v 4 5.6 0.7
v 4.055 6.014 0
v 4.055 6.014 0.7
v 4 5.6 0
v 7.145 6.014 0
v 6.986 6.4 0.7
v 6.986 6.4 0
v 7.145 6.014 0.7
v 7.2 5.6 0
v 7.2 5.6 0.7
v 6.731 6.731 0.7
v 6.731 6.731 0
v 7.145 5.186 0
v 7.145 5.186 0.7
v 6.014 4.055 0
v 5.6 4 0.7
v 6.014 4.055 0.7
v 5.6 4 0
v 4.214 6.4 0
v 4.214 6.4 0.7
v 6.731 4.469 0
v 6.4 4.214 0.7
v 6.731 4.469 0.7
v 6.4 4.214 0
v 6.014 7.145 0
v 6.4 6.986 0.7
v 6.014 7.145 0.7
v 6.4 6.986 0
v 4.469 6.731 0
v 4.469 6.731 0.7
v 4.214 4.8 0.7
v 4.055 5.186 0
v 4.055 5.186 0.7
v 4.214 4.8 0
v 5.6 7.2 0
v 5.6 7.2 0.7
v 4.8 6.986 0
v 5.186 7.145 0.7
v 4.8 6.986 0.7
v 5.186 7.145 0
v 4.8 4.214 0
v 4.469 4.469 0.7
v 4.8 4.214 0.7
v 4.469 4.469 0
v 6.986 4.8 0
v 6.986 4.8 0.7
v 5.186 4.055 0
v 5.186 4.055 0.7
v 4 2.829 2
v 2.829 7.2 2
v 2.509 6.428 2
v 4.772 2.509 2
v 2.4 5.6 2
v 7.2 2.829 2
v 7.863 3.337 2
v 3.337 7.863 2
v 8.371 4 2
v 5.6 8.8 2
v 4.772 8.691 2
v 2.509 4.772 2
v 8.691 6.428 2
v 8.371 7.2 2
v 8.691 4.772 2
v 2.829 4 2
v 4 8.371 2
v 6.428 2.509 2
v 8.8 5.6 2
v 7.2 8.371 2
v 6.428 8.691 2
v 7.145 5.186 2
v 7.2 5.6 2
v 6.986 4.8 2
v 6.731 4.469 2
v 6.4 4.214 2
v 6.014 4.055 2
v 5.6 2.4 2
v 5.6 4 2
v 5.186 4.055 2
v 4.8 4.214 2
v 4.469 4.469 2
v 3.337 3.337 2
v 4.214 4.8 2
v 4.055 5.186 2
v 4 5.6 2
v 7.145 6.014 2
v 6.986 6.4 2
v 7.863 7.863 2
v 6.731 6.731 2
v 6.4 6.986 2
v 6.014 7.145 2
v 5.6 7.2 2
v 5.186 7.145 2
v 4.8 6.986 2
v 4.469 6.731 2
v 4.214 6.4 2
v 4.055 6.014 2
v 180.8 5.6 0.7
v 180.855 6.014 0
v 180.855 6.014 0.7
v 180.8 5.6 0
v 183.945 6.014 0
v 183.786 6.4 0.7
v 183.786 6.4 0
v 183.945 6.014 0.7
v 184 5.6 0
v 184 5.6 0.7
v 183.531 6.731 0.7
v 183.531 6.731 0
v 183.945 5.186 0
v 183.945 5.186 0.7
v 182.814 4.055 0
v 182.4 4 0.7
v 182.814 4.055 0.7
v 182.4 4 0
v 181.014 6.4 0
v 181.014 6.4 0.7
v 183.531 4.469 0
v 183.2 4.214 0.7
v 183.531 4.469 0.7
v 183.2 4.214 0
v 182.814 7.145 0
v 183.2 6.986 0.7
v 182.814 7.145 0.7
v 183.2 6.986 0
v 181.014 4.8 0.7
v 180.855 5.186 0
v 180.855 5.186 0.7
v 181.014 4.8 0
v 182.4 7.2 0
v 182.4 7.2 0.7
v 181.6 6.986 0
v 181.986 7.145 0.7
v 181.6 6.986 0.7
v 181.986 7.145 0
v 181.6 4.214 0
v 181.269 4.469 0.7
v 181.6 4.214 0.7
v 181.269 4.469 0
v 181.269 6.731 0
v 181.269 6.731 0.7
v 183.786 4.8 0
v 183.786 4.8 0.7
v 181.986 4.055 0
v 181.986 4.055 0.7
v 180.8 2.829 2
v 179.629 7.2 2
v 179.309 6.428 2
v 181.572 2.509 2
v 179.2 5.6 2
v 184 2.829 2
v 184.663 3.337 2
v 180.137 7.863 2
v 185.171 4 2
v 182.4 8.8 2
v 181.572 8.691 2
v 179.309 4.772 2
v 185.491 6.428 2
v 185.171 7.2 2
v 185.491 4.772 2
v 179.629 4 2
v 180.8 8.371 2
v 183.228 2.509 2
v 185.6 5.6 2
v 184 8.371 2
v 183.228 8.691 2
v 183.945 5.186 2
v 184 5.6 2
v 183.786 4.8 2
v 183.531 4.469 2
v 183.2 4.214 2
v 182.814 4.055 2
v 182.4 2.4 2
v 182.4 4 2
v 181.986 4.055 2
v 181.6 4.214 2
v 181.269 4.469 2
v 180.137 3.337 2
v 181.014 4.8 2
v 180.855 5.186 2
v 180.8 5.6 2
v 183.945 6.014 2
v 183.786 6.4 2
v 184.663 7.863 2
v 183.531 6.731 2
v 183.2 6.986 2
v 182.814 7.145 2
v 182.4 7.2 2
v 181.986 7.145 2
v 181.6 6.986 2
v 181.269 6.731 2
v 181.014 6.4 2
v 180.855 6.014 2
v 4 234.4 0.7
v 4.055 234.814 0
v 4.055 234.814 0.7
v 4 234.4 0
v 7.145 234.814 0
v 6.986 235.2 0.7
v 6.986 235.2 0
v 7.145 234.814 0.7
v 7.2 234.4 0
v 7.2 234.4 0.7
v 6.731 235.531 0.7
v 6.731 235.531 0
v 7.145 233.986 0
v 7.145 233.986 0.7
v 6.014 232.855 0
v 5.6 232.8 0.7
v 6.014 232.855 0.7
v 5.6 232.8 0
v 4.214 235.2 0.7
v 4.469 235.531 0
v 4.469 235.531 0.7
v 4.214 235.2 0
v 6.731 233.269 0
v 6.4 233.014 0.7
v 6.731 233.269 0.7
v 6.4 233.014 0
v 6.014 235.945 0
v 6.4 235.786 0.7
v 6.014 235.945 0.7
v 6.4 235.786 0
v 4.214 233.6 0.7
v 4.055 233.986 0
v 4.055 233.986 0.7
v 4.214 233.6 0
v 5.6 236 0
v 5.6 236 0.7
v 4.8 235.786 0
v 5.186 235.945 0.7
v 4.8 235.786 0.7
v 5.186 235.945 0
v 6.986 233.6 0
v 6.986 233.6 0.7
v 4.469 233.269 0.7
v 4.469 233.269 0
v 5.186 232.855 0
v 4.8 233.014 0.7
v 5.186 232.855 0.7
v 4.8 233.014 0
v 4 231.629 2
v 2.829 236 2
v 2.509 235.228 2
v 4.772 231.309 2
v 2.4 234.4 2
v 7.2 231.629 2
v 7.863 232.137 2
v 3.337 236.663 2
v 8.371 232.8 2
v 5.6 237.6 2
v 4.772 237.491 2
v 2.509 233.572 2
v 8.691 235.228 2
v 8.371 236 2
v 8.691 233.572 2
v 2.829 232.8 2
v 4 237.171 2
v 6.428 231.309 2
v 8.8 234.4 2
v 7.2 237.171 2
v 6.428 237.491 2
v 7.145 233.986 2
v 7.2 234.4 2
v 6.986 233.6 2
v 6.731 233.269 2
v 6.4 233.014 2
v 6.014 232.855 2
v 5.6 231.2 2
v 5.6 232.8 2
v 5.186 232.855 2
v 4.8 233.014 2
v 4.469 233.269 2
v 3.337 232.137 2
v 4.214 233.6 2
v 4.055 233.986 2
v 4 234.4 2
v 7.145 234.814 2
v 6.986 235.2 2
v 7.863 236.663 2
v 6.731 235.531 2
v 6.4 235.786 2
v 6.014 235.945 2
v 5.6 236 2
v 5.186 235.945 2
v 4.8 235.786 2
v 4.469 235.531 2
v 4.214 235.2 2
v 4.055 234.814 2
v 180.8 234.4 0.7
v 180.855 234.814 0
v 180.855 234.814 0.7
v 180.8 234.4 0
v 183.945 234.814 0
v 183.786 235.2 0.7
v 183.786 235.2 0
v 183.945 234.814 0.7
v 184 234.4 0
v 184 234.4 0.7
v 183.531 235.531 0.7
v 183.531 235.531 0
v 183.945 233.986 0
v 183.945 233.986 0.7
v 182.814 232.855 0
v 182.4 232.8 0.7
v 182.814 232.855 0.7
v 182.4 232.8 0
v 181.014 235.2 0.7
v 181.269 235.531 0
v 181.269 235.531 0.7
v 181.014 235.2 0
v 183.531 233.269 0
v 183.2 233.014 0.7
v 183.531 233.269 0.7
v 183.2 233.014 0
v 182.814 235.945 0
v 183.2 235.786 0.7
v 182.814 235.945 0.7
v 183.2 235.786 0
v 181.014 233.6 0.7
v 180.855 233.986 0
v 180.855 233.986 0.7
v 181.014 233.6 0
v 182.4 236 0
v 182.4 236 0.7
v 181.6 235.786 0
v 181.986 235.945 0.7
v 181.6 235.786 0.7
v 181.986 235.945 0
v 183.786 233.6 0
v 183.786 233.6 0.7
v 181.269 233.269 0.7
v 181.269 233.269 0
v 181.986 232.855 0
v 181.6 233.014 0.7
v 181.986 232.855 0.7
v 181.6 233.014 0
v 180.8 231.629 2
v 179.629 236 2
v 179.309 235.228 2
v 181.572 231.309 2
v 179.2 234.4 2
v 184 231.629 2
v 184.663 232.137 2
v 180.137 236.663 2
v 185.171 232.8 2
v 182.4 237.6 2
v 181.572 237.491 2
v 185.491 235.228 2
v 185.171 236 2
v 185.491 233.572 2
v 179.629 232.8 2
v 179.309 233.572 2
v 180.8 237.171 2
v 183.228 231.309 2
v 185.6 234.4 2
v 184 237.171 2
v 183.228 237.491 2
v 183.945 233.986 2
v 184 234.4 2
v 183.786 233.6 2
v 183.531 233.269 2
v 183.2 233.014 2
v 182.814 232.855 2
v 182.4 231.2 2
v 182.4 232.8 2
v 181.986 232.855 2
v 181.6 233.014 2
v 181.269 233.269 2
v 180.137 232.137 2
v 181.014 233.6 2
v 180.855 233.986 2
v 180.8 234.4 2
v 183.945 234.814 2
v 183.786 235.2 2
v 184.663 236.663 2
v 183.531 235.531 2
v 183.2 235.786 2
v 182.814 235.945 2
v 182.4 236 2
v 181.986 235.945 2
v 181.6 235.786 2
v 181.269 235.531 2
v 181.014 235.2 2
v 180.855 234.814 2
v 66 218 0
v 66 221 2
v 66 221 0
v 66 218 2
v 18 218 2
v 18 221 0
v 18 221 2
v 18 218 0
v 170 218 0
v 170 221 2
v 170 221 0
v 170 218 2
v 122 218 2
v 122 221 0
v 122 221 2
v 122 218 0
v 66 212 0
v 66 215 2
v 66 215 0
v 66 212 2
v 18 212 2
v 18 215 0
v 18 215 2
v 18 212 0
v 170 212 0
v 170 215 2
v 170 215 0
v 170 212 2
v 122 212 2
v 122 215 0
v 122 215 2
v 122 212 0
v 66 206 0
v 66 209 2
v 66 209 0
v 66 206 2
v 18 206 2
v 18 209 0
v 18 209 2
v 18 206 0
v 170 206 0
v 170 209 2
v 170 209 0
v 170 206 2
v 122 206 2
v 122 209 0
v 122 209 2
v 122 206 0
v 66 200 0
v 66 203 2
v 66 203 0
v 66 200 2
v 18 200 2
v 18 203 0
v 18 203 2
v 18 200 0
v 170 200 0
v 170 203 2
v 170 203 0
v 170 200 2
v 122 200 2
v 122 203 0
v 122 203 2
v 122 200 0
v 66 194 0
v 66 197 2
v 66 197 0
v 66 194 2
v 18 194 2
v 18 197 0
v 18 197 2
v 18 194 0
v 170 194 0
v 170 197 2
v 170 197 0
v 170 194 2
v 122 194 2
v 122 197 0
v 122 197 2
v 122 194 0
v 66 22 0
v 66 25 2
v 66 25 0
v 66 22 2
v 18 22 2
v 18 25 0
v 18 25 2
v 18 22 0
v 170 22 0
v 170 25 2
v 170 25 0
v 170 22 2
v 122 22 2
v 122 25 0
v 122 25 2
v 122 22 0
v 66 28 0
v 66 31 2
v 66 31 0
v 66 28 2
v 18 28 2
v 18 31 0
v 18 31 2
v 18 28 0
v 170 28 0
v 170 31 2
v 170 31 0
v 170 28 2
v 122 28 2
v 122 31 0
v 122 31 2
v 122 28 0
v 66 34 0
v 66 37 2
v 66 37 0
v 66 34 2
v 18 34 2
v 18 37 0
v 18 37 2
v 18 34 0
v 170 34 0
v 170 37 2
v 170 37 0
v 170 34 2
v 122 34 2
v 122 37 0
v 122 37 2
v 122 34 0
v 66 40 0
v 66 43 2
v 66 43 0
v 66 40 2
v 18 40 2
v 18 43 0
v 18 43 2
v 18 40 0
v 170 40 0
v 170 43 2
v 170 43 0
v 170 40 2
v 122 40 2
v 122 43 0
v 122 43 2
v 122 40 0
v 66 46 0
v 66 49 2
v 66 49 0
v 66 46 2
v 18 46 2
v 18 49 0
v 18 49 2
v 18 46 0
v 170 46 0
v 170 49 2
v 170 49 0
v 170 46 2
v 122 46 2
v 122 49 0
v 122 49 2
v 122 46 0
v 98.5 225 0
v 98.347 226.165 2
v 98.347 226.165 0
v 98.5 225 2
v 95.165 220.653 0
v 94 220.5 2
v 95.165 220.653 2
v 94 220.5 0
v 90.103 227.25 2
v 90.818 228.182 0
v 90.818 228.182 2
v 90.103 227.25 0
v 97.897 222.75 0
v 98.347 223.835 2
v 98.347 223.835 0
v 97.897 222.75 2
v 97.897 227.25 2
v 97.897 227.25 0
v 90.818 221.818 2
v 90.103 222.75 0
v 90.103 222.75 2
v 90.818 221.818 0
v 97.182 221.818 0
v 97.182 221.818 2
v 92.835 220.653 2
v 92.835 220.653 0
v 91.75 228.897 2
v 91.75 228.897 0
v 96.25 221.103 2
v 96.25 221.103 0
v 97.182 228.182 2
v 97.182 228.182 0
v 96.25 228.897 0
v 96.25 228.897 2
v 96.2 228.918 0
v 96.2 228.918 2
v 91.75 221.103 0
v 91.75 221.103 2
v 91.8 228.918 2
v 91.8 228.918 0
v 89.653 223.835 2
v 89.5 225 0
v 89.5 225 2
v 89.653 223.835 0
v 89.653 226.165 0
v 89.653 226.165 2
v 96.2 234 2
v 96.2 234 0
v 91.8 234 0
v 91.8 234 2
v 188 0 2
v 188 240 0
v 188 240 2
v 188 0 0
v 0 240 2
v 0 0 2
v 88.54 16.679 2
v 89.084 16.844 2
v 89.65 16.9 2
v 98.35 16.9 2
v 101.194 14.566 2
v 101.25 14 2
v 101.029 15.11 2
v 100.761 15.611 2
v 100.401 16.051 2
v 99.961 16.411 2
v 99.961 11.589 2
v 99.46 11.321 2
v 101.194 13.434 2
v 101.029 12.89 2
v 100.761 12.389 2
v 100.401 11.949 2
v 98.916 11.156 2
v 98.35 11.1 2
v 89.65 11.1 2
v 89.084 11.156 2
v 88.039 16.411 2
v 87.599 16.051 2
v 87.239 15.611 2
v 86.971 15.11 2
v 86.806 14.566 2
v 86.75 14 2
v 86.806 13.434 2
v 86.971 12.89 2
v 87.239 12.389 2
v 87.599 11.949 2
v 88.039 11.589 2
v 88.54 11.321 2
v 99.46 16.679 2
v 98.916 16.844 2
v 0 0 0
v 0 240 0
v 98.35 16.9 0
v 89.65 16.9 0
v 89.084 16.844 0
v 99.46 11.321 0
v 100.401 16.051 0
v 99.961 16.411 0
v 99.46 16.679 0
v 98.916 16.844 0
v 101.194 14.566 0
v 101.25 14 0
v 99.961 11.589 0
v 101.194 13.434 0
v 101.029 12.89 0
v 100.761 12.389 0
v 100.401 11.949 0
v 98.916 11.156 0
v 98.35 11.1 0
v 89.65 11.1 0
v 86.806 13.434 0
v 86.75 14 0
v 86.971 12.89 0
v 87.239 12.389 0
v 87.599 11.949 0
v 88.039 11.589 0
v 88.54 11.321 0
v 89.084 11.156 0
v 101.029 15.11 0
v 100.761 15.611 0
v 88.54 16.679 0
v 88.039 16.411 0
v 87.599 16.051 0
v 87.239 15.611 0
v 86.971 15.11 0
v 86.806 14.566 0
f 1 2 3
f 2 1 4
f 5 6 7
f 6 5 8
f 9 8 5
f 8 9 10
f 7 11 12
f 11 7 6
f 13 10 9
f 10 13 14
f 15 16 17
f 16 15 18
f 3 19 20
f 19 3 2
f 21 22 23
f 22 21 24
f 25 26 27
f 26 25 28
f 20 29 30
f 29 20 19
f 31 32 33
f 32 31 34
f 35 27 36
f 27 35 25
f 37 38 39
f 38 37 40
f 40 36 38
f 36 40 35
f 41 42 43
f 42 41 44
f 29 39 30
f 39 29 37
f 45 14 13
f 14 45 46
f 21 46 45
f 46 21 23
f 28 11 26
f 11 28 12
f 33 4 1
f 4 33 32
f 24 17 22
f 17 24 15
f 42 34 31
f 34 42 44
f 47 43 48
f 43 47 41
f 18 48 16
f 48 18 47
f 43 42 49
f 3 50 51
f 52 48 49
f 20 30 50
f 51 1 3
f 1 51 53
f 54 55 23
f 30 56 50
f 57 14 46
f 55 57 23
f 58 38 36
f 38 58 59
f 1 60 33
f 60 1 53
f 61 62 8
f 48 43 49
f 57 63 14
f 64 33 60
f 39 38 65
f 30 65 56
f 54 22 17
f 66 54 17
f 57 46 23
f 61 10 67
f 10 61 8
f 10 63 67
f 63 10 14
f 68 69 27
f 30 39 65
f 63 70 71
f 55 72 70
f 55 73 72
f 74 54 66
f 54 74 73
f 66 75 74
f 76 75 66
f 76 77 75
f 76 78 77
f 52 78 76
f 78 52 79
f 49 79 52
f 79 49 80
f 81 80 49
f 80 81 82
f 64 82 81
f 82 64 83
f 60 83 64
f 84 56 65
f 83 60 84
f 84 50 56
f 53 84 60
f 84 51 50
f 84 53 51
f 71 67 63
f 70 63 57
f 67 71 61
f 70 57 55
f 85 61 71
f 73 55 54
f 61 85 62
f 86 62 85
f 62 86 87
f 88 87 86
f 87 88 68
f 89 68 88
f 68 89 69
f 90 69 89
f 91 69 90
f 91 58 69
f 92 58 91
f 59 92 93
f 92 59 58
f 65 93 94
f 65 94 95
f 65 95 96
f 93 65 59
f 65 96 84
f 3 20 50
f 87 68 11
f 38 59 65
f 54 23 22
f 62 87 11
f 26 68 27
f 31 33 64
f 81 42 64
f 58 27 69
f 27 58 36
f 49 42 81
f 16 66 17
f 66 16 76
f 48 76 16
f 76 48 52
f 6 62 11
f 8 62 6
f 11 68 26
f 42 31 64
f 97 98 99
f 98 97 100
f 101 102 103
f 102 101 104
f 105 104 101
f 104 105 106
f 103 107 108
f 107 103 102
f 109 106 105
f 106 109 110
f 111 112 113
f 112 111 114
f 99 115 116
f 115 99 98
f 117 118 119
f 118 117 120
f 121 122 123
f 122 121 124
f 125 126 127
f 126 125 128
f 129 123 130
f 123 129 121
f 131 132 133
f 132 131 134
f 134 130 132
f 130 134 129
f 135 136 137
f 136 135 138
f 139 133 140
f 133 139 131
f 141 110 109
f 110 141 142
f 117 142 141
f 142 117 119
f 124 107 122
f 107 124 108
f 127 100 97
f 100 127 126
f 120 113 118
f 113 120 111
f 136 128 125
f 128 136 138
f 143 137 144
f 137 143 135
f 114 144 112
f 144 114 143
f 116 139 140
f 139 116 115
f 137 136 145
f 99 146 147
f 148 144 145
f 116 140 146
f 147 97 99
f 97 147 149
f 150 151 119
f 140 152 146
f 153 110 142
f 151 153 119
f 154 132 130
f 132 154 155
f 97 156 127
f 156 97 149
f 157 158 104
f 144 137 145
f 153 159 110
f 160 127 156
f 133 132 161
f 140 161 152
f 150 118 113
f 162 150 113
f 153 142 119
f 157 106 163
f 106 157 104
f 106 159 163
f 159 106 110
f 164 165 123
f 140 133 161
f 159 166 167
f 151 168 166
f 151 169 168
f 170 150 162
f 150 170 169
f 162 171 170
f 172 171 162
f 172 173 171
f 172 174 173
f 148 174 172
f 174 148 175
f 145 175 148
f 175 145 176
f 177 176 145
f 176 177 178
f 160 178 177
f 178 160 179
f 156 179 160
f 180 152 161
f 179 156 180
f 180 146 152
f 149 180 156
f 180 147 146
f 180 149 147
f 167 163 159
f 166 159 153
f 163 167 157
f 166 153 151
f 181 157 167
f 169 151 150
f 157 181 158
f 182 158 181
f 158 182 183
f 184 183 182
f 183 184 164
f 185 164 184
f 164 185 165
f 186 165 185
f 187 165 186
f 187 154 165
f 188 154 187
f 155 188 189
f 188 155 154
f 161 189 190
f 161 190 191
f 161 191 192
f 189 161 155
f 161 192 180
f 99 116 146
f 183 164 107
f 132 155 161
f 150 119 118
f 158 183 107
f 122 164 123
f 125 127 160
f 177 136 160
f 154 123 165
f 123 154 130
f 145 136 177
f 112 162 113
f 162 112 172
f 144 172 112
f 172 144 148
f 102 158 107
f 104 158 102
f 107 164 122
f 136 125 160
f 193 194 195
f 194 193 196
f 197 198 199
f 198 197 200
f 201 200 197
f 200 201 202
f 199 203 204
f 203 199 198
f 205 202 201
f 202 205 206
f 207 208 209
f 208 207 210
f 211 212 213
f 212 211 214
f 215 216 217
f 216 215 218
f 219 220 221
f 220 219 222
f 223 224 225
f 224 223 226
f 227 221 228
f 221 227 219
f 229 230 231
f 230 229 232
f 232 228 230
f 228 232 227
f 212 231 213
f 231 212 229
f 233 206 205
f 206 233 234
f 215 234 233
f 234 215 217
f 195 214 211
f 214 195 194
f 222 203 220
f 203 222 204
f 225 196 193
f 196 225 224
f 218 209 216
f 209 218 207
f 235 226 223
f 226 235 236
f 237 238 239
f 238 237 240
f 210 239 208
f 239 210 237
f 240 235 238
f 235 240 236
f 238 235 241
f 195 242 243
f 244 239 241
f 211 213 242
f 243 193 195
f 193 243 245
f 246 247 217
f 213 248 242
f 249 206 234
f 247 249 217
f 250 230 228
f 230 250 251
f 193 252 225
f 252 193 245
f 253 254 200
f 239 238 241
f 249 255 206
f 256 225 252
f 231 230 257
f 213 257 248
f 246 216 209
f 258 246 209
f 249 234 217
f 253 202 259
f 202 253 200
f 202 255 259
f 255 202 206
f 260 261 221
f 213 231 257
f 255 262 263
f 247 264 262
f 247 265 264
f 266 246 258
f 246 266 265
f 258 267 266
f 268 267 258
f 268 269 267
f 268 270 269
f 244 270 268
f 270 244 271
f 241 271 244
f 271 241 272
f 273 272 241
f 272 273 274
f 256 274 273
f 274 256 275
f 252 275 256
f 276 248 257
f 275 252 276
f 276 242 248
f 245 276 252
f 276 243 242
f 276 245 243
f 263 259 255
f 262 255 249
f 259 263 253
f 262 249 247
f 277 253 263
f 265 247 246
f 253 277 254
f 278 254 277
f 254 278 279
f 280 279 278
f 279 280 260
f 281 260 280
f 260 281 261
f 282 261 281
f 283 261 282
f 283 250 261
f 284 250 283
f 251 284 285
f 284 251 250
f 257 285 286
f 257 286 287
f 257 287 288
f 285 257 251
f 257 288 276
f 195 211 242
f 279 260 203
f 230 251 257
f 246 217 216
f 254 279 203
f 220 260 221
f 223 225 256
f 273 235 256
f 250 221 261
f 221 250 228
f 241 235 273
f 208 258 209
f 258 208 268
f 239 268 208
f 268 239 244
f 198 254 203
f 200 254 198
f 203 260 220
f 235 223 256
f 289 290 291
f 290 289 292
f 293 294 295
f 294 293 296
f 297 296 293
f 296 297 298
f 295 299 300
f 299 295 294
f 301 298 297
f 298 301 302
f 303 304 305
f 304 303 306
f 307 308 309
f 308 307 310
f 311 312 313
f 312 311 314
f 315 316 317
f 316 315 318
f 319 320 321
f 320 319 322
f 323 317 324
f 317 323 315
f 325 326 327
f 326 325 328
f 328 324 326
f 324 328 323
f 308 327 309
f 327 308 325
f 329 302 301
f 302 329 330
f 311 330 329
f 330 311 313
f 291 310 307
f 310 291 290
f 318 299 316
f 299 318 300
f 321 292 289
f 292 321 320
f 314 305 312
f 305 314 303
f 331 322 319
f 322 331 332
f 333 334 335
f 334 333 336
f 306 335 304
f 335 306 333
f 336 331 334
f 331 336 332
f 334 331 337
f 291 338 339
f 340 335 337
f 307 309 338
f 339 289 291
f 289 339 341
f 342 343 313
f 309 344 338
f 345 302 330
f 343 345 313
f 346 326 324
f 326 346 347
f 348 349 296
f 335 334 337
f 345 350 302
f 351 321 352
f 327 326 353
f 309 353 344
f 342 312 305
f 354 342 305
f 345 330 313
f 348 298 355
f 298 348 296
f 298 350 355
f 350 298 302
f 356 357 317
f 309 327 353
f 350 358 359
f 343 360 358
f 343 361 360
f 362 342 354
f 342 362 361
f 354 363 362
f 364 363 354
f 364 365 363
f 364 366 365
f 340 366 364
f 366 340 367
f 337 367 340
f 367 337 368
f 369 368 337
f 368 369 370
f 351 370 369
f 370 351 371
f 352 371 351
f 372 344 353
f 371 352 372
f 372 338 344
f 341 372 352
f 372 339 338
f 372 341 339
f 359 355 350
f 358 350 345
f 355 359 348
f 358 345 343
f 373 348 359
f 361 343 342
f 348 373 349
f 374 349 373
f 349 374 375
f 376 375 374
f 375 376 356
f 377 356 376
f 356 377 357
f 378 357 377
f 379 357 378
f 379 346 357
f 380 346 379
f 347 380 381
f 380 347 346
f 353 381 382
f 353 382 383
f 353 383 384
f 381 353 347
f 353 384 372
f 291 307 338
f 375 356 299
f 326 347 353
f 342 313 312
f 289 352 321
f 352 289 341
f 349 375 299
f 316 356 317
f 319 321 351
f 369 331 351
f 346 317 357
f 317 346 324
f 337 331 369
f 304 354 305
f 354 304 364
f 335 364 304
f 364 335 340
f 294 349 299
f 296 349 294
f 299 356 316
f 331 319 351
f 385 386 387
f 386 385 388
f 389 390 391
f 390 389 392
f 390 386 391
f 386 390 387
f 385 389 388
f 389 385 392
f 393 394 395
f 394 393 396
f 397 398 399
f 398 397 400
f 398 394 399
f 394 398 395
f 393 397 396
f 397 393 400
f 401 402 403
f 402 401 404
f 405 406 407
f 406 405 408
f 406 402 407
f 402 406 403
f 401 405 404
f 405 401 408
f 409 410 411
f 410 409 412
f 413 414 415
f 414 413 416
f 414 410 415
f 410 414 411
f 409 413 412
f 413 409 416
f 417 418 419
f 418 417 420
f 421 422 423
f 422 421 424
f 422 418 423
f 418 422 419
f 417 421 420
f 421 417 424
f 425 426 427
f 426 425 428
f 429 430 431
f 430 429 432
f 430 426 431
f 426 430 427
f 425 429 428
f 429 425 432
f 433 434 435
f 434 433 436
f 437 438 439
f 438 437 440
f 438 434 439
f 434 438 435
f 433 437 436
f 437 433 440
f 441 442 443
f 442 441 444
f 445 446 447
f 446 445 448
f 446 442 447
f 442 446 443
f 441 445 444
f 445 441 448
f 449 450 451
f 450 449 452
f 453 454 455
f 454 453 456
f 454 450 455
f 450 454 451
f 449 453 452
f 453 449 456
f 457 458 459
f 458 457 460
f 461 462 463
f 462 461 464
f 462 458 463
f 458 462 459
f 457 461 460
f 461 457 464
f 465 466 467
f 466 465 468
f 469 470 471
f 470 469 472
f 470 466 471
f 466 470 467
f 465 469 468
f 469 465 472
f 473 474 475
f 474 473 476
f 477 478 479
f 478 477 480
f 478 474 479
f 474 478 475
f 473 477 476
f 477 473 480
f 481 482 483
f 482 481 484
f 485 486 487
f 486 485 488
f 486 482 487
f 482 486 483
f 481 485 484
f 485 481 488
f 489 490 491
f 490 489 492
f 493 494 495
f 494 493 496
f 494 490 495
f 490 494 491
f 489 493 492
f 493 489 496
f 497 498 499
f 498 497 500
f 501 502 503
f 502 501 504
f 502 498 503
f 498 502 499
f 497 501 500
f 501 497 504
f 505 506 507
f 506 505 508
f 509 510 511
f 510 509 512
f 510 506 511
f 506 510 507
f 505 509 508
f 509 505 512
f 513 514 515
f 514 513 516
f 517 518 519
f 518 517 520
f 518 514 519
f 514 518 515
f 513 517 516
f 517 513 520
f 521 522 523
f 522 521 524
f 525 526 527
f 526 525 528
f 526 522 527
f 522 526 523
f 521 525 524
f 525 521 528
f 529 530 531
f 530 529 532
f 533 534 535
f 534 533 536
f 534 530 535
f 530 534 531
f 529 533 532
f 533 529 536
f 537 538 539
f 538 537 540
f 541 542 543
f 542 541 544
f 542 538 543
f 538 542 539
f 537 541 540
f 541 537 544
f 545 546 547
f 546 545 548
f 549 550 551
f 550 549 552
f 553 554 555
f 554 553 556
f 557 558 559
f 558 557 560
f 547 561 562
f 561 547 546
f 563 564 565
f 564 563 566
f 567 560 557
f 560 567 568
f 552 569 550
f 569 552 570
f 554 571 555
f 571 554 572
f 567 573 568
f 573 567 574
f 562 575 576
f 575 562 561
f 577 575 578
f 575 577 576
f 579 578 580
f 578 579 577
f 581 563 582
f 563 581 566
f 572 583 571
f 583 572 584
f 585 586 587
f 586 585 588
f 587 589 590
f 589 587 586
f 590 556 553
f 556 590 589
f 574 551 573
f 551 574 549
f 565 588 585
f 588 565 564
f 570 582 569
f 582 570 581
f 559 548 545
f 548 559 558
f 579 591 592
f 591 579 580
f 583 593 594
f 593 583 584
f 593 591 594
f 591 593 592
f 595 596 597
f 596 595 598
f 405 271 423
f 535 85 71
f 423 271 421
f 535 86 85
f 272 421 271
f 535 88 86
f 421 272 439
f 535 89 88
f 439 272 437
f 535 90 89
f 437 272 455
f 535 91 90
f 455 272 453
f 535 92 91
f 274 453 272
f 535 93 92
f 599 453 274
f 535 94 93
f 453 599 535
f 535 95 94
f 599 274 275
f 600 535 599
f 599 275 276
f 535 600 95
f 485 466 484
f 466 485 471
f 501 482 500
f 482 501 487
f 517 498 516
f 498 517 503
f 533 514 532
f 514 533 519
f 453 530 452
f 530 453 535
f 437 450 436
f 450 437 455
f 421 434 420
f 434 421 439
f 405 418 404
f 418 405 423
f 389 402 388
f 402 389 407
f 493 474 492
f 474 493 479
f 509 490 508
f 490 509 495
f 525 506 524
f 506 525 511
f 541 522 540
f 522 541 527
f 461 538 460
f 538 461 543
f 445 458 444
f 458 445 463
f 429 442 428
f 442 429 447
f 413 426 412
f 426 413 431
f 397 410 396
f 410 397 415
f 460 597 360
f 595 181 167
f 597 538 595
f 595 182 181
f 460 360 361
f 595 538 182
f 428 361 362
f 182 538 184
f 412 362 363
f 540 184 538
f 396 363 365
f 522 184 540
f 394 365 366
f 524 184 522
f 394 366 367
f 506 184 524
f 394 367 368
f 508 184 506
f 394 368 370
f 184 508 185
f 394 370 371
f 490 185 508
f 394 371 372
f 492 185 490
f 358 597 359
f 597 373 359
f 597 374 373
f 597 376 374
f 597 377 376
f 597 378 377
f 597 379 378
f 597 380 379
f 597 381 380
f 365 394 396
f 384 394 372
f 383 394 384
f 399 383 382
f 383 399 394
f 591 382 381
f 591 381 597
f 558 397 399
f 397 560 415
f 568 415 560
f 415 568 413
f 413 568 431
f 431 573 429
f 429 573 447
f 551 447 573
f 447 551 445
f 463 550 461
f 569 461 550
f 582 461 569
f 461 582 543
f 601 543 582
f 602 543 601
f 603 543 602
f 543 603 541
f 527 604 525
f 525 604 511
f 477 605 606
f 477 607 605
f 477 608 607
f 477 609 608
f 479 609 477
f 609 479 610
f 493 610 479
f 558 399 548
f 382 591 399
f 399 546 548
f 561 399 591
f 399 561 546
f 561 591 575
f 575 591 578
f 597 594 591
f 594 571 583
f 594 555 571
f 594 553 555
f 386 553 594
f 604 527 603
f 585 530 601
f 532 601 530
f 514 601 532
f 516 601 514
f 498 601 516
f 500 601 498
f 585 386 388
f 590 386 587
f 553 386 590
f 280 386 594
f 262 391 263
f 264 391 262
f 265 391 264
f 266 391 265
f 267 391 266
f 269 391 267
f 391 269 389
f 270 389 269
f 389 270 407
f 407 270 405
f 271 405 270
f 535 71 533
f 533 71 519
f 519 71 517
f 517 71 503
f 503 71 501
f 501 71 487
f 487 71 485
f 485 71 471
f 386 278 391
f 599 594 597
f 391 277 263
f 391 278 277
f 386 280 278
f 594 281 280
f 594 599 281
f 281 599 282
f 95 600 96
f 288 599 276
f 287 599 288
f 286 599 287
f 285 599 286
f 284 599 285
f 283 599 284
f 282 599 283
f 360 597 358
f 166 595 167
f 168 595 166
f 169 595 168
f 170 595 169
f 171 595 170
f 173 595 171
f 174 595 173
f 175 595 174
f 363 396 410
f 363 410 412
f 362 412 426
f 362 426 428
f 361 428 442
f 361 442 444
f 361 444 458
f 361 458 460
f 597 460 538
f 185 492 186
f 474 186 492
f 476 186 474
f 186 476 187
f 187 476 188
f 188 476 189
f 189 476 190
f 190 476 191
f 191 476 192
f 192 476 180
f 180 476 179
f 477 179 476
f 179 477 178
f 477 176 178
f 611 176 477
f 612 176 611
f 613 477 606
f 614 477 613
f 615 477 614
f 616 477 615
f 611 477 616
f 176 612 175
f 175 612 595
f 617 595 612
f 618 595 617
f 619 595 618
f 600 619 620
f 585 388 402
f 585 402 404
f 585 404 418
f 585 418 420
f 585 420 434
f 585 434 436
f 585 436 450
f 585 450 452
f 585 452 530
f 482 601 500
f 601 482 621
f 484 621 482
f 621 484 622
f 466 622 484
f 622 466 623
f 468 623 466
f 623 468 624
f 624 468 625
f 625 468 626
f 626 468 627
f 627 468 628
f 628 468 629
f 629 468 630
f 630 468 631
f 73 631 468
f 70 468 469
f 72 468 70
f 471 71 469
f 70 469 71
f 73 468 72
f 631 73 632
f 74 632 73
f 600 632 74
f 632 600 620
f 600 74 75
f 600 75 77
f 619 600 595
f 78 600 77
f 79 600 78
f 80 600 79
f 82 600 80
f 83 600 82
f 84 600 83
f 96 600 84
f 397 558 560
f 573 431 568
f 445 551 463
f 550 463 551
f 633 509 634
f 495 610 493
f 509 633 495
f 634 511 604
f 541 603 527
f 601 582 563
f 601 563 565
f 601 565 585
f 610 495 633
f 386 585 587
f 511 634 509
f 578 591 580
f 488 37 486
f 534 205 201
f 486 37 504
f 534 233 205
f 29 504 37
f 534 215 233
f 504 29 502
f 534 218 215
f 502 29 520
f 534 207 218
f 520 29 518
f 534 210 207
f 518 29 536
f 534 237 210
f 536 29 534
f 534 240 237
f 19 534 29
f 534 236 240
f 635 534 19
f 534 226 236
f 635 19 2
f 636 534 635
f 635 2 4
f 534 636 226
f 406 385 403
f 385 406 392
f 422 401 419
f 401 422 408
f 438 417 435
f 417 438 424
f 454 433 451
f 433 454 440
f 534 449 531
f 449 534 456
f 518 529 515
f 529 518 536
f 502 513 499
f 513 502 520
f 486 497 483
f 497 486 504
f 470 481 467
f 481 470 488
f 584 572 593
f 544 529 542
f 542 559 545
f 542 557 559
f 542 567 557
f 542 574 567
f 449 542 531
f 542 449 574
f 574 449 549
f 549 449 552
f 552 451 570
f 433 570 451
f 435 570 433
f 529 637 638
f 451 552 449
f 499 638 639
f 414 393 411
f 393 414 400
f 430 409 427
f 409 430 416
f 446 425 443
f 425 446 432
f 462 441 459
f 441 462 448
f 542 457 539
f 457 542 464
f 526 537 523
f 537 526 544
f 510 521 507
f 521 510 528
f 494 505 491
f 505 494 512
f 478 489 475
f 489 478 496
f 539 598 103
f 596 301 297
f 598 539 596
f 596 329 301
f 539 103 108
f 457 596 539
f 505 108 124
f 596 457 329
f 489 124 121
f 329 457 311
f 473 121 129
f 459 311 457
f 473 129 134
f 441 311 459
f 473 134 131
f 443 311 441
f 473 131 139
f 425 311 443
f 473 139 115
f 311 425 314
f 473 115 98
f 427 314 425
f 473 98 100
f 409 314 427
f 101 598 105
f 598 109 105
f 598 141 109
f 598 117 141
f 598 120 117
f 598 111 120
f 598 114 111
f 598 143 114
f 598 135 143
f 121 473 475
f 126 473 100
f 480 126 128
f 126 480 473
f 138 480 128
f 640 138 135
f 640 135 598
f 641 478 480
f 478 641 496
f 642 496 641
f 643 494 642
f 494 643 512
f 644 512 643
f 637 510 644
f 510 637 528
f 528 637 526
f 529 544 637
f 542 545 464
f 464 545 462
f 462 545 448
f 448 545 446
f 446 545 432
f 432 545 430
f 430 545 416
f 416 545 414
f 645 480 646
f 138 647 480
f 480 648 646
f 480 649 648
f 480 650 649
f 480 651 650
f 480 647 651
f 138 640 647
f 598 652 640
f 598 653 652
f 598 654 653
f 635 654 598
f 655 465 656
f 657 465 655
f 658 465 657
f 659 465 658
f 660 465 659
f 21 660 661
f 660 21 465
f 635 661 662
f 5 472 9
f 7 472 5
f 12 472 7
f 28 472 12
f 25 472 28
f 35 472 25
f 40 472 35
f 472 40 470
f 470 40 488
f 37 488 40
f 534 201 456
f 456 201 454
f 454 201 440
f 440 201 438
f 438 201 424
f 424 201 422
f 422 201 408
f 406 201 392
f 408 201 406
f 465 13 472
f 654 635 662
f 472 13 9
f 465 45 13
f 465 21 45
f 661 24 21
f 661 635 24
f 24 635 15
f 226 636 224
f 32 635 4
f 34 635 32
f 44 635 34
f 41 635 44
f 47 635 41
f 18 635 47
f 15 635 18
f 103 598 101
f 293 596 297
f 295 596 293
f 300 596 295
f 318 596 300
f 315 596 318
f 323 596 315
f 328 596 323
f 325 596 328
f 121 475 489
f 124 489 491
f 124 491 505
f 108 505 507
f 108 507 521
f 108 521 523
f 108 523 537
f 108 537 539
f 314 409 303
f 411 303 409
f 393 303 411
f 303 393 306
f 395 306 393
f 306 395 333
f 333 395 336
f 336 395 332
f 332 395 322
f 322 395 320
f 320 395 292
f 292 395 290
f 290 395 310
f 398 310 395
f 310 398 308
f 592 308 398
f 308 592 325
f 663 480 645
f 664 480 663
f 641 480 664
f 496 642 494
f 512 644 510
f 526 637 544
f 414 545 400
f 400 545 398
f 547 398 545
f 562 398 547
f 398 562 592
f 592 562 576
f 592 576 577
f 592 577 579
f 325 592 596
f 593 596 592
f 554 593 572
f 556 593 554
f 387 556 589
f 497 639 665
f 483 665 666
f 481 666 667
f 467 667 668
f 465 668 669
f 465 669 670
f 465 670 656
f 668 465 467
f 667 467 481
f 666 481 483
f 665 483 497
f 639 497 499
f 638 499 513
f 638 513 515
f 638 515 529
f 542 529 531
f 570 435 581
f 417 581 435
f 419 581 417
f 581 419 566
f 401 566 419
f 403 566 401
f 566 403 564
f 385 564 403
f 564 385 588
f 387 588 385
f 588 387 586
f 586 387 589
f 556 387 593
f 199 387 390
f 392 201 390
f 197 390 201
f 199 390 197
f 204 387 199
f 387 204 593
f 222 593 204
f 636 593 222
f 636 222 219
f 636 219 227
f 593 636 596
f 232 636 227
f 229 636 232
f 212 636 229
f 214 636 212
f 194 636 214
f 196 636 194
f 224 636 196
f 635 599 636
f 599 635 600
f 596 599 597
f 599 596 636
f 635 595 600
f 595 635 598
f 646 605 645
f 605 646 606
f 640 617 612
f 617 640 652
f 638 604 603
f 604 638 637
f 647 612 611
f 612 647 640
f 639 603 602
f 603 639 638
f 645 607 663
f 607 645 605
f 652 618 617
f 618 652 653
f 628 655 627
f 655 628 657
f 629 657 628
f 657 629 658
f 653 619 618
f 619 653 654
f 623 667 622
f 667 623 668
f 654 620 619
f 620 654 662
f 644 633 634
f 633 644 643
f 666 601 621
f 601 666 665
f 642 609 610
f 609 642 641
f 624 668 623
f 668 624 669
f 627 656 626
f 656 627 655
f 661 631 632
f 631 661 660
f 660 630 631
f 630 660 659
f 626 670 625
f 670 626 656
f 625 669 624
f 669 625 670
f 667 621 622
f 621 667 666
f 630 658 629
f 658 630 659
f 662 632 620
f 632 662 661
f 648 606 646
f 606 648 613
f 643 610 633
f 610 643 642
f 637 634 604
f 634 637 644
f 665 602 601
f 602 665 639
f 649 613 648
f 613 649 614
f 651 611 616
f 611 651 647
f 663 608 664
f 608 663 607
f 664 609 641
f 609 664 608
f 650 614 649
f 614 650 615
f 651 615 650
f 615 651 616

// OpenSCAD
// ==============================================================================
// WORDCLOCK ESP32 - VERSION 1 (NO AL RAS / SUPERPUESTA)
// PIEZA 3: TAPA TRASERA SUPERPUESTA DE 188.0 x 240.0 mm CON RANURA USB-C
// ==============================================================================

box_w       = 188.0;   // Ancho exterior completo
box_h       = 240.0;   // Alto exterior completo
wall_thick  = 1.6;
lid_thick   = 2.0;

screw_off   = wall_thick + 4.0; // 5.6 mm desde la esquina exterior

module wordclock_back_lid() {
    difference() {
        // 1. Placa Base de la Tapa (188.0 x 240.0 x 2.0 mm)
        cube([box_w, box_h, lid_thick]);

        // 2. Orificios avellanados (Countersunk) en las 4 esquinas para tornillos M3
        translate([screw_off, screw_off, -0.1]) {
            cylinder(r = 1.6, h = lid_thick + 0.2, $fn = 24);
            translate([0, 0, 0.8]) cylinder(r1 = 1.6, r2 = 3.2, h = 1.3, $fn = 24);
        }
        translate([box_w - screw_off, screw_off, -0.1]) {
            cylinder(r = 1.6, h = lid_thick + 0.2, $fn = 24);
            translate([0, 0, 0.8]) cylinder(r1 = 1.6, r2 = 3.2, h = 1.3, $fn = 24);
        }
        translate([screw_off, box_h - screw_off, -0.1]) {
            cylinder(r = 1.6, h = lid_thick + 0.2, $fn = 24);
            translate([0, 0, 0.8]) cylinder(r1 = 1.6, r2 = 3.2, h = 1.3, $fn = 24);
        }
        translate([box_w - screw_off, box_h - screw_off, -0.1]) {
            cylinder(r = 1.6, h = lid_thick + 0.2, $fn = 24);
            translate([0, 0, 0.8]) cylinder(r1 = 1.6, r2 = 3.2, h = 1.3, $fn = 24);
        }

        // 3. Ranuras de Ventilación Superior
        for (i = [0 : 4]) {
            y_slot = box_h - 22 - (i * 6);
            translate([18, y_slot, -0.1])         cube([48, 3.0, lid_thick + 0.2]);
            translate([box_w - 66, y_slot, -0.1]) cube([48, 3.0, lid_thick + 0.2]);
        }

        // 4. Ranuras de Ventilación Inferior
        for (i = [0 : 4]) {
            y_slot = 22 + (i * 6);
            translate([18, y_slot, -0.1])         cube([48, 3.0, lid_thick + 0.2]);
            translate([box_w - 66, y_slot, -0.1]) cube([48, 3.0, lid_thick + 0.2]);
        }

        // 5. RANURA USB-C OBLONGA / PANELSOCKET (14.5 x 5.8 mm con r = 2.9 mm)
        translate([box_w / 2, 14.0, -0.1]) {
            hull() {
                translate([-4.35, 0, 0]) cylinder(r = 2.9, h = lid_thick + 0.2, $fn = 32);
                translate([ 4.35, 0, 0]) cylinder(r = 2.9, h = lid_thick + 0.2, $fn = 32);
            }
        }

        // 6. Muesca de cerradura (Keyhole) para colgar en pared
        translate([box_w / 2, box_h - 15, -0.1]) {
            union() {
                cylinder(r = 4.5, h = lid_thick + 0.2, $fn = 24);
                translate([-2.2, 0, 0]) cube([4.4, 9.0, lid_thick + 0.2]);
            }
        }
    }
}

wordclock_back_lid();
